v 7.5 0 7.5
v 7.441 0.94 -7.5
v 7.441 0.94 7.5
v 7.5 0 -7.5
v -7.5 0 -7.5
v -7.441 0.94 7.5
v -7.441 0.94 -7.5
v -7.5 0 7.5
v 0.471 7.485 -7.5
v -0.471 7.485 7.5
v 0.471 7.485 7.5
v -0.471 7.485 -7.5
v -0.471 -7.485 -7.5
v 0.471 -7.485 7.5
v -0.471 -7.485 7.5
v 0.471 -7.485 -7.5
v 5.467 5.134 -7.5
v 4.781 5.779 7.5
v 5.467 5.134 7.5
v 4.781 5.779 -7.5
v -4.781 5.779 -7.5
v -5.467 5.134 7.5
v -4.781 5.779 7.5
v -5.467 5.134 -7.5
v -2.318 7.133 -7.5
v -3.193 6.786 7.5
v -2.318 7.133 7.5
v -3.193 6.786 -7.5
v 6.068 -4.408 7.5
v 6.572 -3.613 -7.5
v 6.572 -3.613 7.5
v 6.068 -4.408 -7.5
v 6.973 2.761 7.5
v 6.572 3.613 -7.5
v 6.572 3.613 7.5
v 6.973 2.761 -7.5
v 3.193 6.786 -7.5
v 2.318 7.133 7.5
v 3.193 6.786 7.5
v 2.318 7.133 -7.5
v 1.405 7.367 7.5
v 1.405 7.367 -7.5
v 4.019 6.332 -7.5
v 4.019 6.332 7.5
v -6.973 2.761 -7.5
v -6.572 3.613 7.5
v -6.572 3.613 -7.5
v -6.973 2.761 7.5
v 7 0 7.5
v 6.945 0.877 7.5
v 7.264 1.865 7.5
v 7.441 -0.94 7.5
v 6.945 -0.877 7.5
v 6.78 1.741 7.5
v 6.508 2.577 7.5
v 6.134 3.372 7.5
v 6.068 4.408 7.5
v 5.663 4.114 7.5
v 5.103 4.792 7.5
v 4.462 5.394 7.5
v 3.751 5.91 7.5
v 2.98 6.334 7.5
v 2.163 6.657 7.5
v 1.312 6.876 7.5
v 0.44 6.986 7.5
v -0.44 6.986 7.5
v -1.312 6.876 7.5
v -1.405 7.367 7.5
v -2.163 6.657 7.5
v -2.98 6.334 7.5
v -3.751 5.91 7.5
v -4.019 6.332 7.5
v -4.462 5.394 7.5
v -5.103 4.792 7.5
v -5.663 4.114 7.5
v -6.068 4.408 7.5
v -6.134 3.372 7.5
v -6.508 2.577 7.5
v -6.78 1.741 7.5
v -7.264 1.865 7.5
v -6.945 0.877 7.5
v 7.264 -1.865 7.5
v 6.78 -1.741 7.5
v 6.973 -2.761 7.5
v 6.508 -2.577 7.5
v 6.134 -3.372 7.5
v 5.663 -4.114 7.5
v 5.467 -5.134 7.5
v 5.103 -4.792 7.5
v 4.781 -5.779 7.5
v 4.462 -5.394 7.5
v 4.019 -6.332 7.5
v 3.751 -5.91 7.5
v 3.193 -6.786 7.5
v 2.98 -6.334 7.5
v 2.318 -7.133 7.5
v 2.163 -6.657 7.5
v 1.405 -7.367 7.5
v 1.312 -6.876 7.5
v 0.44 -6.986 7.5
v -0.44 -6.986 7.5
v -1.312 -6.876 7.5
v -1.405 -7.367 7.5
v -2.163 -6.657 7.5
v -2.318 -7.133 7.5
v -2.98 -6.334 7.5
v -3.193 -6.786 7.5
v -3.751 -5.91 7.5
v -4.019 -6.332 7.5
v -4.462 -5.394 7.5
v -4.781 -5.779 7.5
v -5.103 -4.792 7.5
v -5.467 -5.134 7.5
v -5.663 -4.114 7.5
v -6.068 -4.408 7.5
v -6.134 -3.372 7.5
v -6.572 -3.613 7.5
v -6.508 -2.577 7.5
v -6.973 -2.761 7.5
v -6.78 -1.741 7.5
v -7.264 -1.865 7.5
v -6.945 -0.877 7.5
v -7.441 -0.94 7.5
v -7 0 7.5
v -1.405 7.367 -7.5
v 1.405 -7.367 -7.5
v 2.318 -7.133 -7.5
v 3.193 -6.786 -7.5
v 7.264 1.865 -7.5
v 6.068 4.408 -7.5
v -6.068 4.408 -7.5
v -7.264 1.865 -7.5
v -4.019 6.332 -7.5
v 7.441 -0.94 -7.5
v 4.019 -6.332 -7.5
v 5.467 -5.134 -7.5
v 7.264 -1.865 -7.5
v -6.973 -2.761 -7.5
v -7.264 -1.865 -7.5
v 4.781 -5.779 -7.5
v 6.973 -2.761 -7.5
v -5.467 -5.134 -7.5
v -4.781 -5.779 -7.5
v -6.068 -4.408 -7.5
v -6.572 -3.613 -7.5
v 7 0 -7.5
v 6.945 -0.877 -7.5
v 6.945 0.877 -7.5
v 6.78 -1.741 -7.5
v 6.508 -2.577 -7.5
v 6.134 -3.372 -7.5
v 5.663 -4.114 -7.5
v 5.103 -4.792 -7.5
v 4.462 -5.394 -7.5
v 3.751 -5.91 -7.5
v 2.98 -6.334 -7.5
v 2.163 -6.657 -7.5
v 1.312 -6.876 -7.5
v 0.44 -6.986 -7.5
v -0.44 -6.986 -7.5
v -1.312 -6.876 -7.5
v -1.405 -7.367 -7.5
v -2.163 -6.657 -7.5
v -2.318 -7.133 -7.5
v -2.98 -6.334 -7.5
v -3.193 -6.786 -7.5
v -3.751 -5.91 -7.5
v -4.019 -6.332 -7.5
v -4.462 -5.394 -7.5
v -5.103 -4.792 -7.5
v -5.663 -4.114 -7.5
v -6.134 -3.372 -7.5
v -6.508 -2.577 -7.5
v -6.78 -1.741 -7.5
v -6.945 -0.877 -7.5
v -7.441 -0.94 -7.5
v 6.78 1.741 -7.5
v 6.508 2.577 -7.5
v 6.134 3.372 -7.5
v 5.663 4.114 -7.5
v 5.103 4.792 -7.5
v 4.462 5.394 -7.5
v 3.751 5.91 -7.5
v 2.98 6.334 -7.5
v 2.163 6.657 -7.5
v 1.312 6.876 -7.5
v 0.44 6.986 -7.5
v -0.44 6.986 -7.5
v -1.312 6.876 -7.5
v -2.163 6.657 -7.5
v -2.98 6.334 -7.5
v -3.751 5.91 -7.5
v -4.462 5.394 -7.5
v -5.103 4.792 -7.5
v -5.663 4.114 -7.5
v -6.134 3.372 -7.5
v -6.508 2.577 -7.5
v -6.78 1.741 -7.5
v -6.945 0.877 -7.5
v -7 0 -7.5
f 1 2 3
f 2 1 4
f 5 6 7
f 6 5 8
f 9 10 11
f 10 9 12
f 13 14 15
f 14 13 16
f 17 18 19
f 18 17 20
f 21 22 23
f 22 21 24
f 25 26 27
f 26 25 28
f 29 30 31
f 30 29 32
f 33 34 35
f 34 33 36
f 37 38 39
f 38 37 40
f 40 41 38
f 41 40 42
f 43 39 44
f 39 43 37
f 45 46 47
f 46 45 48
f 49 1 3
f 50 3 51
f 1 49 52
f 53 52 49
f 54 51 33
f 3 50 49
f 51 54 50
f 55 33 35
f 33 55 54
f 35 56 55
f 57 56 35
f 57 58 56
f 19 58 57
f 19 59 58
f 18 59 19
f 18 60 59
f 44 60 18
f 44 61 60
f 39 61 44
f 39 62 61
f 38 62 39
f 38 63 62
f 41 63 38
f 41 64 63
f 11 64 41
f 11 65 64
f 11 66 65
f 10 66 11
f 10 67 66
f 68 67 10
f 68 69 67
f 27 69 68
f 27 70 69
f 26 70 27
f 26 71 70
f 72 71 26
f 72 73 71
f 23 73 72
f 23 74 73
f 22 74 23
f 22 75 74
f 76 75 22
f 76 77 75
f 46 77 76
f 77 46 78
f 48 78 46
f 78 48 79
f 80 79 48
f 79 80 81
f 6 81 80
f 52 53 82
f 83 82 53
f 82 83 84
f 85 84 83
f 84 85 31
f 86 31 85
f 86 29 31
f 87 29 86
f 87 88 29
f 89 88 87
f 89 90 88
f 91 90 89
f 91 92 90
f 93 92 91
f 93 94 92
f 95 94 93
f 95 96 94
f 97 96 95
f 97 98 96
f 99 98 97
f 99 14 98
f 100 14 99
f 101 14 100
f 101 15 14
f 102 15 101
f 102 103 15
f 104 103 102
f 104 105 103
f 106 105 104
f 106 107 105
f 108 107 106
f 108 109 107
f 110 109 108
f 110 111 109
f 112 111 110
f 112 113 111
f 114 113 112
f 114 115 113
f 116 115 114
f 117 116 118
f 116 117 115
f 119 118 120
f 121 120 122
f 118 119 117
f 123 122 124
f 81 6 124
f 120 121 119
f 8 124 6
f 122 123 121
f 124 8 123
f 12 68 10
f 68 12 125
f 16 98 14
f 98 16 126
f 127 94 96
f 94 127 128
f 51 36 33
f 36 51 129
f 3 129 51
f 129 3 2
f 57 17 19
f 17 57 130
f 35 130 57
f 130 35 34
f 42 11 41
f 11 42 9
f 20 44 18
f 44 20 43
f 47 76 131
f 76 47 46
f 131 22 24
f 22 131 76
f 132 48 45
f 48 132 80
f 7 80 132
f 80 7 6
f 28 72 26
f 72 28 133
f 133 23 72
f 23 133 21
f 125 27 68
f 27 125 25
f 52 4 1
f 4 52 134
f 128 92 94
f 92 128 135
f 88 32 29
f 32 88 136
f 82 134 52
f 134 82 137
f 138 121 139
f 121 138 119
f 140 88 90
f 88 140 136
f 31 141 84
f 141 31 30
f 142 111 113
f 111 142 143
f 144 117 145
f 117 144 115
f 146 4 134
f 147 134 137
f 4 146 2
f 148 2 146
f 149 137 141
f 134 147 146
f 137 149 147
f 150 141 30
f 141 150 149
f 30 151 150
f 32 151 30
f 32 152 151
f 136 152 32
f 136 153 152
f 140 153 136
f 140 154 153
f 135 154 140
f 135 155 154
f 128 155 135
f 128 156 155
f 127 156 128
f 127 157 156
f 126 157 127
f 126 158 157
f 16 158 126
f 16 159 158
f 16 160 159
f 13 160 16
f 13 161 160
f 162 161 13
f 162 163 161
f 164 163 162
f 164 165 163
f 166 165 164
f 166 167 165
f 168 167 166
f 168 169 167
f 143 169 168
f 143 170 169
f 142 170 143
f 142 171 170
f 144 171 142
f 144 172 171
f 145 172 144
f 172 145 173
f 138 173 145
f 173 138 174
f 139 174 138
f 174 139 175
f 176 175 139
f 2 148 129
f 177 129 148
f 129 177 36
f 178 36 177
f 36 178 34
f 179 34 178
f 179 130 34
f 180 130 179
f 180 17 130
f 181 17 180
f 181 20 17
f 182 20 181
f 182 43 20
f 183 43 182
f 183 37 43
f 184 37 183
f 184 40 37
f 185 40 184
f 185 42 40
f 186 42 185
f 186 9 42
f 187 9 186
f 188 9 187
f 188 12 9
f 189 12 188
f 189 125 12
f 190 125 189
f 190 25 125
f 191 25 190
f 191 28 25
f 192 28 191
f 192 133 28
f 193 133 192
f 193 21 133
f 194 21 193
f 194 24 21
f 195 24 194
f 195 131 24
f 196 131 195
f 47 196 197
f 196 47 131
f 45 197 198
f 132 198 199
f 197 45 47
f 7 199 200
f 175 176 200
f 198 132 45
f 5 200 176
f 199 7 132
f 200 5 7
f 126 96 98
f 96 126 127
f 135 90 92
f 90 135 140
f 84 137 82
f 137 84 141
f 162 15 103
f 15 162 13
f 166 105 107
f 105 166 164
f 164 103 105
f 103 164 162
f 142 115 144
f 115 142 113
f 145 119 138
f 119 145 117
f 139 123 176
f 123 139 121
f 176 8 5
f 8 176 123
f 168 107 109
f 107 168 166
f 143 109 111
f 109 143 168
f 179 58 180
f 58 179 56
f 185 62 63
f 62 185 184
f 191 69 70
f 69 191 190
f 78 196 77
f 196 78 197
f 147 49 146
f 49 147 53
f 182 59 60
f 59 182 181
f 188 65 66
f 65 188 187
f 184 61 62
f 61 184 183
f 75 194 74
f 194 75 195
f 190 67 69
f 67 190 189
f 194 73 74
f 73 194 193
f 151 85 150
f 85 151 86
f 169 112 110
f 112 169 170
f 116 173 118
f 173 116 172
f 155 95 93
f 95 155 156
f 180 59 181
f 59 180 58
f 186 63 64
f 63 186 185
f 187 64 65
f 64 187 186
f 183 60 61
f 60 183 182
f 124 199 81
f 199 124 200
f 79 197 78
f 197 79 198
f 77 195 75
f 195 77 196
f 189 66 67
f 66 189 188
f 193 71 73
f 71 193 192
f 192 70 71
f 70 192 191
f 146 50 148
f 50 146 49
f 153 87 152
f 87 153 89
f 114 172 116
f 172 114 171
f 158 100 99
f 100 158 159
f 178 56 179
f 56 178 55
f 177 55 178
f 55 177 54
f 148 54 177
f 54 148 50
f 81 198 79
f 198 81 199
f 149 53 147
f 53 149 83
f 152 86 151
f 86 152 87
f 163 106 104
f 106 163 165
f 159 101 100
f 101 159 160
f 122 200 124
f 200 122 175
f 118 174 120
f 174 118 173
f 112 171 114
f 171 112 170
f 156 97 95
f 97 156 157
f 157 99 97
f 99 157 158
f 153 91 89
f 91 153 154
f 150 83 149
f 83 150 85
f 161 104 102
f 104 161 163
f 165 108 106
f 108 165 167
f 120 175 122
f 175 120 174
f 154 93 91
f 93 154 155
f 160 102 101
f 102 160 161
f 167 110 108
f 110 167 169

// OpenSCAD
$fn = 50;


difference() {
	union() {
		translate(v = [0, 0, -7.5000000000]) {
			cylinder(h = 15, r = 7.5000000000);
		}
	}
	union() {
		translate(v = [0, 0, -100.0000000000]) {
			cylinder(h = 200, r = 7);
		}
	}
}
